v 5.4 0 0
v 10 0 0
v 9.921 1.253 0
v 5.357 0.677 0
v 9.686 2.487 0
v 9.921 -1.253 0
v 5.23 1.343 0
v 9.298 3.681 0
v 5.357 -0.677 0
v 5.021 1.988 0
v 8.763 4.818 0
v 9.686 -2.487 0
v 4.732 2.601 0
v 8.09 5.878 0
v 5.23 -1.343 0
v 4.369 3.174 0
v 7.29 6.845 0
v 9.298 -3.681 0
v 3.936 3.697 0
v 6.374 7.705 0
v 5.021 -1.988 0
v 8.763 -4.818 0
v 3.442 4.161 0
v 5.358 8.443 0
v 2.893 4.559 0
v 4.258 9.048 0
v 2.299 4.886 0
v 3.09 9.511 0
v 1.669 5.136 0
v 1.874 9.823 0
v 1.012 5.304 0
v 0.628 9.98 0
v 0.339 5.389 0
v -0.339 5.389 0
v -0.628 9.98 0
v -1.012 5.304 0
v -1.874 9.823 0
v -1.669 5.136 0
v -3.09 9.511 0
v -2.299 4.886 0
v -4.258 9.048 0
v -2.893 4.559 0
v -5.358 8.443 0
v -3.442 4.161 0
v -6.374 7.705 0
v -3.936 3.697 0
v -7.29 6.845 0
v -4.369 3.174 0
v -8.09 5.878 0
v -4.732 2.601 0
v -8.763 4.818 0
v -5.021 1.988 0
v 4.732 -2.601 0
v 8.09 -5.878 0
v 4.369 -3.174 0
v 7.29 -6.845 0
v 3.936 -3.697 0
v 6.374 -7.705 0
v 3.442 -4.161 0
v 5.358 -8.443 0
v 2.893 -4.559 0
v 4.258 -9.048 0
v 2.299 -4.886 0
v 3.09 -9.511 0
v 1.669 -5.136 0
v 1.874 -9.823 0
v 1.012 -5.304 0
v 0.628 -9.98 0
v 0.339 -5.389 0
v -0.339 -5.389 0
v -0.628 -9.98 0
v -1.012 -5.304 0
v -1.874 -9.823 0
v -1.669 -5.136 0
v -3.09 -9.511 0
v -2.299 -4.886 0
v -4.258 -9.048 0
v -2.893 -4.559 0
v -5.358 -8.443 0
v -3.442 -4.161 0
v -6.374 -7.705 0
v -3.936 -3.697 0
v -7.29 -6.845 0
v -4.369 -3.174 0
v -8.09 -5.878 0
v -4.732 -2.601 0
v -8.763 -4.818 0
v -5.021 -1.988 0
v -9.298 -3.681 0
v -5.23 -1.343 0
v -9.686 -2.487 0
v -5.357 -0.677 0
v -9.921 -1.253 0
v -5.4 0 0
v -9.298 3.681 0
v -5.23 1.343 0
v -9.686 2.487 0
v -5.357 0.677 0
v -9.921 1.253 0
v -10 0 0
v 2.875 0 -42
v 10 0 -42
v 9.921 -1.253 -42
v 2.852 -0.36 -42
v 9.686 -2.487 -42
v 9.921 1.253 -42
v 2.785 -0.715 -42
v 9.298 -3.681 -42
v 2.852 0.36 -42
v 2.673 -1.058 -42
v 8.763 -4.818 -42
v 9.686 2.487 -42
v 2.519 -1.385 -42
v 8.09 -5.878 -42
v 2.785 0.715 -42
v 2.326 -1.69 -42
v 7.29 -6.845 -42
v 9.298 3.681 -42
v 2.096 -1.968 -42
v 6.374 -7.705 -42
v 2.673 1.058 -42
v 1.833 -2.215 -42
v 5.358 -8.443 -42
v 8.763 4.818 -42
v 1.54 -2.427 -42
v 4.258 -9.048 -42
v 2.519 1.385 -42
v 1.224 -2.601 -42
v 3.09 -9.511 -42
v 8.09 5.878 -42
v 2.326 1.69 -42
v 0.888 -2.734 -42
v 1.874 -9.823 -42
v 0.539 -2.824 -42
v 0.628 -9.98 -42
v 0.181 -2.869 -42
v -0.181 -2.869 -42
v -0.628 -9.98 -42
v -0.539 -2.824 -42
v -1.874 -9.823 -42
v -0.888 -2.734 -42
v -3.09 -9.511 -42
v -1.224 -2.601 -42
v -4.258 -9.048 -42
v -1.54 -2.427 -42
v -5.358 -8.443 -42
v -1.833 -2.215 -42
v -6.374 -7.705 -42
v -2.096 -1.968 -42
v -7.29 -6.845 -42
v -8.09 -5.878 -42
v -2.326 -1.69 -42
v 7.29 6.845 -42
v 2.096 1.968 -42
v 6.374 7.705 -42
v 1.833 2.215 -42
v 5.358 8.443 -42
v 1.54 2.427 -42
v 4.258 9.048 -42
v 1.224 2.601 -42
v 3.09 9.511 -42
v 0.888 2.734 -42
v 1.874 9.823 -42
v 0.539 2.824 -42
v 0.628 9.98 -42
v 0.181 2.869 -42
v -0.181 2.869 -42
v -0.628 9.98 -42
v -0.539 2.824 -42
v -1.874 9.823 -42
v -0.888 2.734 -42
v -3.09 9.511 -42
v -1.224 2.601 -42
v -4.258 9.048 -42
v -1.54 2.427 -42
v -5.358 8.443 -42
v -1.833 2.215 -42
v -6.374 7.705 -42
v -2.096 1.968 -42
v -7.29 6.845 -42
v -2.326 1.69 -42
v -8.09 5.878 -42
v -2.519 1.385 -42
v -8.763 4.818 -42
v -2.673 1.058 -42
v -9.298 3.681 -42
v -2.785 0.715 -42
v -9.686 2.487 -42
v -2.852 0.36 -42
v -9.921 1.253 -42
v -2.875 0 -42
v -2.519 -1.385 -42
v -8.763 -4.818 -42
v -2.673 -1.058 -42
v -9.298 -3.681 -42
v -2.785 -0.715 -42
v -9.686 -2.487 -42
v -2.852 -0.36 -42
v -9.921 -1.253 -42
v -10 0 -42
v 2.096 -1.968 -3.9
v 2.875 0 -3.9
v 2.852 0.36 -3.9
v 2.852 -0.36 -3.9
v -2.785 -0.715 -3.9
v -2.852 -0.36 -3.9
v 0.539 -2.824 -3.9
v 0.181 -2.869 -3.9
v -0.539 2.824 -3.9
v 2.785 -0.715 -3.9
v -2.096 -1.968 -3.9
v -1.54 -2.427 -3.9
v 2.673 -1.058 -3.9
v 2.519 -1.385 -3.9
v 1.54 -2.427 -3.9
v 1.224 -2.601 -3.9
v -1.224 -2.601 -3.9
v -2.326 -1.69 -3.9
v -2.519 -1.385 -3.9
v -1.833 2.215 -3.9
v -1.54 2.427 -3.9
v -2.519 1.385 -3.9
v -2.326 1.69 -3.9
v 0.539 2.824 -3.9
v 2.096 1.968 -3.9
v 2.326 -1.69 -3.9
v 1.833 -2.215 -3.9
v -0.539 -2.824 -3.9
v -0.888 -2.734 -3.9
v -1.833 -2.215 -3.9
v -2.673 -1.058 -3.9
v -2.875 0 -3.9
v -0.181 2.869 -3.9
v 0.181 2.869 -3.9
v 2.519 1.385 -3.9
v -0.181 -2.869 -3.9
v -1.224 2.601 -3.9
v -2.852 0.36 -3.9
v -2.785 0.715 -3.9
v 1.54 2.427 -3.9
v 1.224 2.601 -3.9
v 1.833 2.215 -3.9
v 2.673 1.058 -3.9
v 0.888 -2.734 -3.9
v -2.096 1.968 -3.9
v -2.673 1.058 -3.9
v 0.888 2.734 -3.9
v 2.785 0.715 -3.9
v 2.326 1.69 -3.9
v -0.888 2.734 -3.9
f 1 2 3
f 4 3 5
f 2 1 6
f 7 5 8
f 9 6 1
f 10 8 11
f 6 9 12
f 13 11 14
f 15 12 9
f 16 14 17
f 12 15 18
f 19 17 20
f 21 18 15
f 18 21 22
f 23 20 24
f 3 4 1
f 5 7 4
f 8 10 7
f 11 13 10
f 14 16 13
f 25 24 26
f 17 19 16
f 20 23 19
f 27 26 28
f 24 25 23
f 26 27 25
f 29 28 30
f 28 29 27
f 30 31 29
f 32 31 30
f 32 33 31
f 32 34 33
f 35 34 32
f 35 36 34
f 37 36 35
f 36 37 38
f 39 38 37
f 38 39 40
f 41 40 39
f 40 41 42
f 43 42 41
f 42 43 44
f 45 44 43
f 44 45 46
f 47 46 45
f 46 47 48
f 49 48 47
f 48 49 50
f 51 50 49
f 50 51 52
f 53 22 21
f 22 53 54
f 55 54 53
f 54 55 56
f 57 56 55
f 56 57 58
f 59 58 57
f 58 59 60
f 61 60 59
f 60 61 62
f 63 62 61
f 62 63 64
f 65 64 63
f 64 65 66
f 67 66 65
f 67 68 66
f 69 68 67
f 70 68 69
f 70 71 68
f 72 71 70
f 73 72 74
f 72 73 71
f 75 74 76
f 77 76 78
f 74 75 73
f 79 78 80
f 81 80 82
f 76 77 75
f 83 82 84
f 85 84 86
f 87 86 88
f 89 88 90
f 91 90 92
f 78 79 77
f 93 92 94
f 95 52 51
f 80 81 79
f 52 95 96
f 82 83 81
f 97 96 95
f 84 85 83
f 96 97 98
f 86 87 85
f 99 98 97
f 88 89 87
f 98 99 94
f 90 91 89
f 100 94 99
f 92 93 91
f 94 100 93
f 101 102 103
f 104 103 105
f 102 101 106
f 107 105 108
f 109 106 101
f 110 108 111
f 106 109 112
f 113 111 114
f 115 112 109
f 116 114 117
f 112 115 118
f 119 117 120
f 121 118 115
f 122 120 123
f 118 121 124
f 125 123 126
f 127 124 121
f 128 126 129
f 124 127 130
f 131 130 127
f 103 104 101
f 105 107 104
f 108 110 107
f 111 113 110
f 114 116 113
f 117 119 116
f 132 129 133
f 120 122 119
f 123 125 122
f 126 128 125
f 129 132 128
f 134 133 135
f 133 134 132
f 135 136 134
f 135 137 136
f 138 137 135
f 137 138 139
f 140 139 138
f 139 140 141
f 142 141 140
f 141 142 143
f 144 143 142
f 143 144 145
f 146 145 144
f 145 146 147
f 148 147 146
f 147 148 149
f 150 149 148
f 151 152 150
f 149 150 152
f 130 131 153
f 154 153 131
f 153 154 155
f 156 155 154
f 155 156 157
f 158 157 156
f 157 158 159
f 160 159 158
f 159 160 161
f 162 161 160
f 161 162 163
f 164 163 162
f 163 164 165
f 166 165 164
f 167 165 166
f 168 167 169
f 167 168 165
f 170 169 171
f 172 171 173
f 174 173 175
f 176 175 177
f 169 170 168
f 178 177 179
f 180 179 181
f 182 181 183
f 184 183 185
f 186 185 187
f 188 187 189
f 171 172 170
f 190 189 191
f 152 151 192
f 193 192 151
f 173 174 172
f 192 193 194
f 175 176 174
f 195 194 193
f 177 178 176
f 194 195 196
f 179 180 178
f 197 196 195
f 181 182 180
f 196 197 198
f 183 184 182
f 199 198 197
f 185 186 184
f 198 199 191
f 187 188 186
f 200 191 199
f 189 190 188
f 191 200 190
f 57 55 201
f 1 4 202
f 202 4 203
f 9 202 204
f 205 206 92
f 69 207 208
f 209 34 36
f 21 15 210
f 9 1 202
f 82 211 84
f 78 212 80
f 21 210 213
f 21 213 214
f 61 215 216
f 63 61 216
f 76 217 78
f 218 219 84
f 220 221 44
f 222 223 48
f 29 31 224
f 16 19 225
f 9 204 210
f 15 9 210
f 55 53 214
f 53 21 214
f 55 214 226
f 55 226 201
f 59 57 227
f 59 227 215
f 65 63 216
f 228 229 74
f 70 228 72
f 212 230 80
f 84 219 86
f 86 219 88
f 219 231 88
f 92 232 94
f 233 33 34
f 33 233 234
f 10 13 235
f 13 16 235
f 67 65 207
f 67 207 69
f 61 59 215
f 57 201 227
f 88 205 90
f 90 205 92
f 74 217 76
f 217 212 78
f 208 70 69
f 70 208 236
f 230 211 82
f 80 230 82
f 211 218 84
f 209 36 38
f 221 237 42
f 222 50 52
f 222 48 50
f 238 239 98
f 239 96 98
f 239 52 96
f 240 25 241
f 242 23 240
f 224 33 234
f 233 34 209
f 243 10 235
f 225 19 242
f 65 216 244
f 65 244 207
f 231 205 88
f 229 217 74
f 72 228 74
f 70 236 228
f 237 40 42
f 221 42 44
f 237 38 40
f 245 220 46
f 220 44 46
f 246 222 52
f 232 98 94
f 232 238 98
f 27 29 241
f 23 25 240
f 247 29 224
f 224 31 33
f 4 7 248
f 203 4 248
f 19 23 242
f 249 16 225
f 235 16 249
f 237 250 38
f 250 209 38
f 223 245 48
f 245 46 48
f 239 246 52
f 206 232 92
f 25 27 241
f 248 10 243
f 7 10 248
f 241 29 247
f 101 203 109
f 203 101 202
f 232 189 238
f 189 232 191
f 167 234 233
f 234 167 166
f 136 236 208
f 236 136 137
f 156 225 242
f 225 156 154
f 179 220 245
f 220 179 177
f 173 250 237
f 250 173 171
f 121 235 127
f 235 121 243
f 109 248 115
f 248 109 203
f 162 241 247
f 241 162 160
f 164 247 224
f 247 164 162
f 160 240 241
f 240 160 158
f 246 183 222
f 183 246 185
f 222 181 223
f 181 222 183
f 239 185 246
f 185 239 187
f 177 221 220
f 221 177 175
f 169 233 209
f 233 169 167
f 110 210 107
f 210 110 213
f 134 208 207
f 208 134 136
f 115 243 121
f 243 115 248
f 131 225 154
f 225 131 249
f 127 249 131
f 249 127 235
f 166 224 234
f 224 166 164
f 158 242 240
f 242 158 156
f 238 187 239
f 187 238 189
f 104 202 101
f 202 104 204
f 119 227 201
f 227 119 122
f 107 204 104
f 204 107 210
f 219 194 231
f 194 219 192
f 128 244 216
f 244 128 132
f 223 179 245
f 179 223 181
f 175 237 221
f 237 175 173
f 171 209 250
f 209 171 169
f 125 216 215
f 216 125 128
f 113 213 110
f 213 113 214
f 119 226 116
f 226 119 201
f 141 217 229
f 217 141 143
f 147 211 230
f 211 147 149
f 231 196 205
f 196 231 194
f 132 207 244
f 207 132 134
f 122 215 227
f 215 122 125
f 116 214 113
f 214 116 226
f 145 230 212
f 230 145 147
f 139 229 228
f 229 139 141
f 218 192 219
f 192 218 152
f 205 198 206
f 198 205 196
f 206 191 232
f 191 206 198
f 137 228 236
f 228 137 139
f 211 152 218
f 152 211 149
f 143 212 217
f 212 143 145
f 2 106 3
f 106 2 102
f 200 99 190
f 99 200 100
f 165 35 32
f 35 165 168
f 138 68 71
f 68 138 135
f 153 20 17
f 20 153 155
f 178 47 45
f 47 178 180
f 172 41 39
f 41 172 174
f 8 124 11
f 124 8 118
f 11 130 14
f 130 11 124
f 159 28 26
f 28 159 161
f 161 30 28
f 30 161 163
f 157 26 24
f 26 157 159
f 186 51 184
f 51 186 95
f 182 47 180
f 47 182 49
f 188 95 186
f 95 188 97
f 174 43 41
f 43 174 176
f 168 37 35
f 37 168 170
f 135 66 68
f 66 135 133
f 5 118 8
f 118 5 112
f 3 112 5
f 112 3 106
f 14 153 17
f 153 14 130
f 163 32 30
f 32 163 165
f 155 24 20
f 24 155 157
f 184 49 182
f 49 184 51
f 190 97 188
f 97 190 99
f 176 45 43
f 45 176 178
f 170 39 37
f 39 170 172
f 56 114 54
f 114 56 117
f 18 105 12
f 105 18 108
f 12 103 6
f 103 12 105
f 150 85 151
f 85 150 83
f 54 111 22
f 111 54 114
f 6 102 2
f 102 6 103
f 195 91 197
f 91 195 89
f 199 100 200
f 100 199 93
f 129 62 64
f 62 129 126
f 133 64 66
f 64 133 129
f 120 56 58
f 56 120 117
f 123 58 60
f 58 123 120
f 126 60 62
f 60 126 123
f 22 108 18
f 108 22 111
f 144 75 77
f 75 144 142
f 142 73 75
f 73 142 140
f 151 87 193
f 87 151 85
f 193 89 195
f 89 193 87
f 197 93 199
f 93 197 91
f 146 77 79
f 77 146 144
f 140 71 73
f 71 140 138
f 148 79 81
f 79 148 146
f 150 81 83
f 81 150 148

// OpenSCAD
$fn = 50;


difference() {
	union() {
		translate(v = [0, 0, -42.0000000000]) {
			cylinder(h = 42, r = 10.0000000000);
		}
	}
	union() {
		translate(v = [0, 0, 0]) {
			rotate(a = [0, 0, 0]) {
				difference() {
					union() {
						#translate(v = [0, 0, -42.0000000000]) {
							cylinder(h = 42, r = 2.6000000000);
						}
						#translate(v = [0, 0, -3.9000000000]) {
							cylinder(h = 3.9000000000, r1 = 2.8750000000, r2 = 5.4000000000);
						}
						#translate(v = [0, 0, -42.0000000000]) {
							cylinder(h = 42, r = 2.8750000000);
						}
						#translate(v = [0, 0, -42.0000000000]) {
							cylinder(h = 42, r = 2.6000000000);
						}
					}
					union();
				}
			}
		}
	}
}
